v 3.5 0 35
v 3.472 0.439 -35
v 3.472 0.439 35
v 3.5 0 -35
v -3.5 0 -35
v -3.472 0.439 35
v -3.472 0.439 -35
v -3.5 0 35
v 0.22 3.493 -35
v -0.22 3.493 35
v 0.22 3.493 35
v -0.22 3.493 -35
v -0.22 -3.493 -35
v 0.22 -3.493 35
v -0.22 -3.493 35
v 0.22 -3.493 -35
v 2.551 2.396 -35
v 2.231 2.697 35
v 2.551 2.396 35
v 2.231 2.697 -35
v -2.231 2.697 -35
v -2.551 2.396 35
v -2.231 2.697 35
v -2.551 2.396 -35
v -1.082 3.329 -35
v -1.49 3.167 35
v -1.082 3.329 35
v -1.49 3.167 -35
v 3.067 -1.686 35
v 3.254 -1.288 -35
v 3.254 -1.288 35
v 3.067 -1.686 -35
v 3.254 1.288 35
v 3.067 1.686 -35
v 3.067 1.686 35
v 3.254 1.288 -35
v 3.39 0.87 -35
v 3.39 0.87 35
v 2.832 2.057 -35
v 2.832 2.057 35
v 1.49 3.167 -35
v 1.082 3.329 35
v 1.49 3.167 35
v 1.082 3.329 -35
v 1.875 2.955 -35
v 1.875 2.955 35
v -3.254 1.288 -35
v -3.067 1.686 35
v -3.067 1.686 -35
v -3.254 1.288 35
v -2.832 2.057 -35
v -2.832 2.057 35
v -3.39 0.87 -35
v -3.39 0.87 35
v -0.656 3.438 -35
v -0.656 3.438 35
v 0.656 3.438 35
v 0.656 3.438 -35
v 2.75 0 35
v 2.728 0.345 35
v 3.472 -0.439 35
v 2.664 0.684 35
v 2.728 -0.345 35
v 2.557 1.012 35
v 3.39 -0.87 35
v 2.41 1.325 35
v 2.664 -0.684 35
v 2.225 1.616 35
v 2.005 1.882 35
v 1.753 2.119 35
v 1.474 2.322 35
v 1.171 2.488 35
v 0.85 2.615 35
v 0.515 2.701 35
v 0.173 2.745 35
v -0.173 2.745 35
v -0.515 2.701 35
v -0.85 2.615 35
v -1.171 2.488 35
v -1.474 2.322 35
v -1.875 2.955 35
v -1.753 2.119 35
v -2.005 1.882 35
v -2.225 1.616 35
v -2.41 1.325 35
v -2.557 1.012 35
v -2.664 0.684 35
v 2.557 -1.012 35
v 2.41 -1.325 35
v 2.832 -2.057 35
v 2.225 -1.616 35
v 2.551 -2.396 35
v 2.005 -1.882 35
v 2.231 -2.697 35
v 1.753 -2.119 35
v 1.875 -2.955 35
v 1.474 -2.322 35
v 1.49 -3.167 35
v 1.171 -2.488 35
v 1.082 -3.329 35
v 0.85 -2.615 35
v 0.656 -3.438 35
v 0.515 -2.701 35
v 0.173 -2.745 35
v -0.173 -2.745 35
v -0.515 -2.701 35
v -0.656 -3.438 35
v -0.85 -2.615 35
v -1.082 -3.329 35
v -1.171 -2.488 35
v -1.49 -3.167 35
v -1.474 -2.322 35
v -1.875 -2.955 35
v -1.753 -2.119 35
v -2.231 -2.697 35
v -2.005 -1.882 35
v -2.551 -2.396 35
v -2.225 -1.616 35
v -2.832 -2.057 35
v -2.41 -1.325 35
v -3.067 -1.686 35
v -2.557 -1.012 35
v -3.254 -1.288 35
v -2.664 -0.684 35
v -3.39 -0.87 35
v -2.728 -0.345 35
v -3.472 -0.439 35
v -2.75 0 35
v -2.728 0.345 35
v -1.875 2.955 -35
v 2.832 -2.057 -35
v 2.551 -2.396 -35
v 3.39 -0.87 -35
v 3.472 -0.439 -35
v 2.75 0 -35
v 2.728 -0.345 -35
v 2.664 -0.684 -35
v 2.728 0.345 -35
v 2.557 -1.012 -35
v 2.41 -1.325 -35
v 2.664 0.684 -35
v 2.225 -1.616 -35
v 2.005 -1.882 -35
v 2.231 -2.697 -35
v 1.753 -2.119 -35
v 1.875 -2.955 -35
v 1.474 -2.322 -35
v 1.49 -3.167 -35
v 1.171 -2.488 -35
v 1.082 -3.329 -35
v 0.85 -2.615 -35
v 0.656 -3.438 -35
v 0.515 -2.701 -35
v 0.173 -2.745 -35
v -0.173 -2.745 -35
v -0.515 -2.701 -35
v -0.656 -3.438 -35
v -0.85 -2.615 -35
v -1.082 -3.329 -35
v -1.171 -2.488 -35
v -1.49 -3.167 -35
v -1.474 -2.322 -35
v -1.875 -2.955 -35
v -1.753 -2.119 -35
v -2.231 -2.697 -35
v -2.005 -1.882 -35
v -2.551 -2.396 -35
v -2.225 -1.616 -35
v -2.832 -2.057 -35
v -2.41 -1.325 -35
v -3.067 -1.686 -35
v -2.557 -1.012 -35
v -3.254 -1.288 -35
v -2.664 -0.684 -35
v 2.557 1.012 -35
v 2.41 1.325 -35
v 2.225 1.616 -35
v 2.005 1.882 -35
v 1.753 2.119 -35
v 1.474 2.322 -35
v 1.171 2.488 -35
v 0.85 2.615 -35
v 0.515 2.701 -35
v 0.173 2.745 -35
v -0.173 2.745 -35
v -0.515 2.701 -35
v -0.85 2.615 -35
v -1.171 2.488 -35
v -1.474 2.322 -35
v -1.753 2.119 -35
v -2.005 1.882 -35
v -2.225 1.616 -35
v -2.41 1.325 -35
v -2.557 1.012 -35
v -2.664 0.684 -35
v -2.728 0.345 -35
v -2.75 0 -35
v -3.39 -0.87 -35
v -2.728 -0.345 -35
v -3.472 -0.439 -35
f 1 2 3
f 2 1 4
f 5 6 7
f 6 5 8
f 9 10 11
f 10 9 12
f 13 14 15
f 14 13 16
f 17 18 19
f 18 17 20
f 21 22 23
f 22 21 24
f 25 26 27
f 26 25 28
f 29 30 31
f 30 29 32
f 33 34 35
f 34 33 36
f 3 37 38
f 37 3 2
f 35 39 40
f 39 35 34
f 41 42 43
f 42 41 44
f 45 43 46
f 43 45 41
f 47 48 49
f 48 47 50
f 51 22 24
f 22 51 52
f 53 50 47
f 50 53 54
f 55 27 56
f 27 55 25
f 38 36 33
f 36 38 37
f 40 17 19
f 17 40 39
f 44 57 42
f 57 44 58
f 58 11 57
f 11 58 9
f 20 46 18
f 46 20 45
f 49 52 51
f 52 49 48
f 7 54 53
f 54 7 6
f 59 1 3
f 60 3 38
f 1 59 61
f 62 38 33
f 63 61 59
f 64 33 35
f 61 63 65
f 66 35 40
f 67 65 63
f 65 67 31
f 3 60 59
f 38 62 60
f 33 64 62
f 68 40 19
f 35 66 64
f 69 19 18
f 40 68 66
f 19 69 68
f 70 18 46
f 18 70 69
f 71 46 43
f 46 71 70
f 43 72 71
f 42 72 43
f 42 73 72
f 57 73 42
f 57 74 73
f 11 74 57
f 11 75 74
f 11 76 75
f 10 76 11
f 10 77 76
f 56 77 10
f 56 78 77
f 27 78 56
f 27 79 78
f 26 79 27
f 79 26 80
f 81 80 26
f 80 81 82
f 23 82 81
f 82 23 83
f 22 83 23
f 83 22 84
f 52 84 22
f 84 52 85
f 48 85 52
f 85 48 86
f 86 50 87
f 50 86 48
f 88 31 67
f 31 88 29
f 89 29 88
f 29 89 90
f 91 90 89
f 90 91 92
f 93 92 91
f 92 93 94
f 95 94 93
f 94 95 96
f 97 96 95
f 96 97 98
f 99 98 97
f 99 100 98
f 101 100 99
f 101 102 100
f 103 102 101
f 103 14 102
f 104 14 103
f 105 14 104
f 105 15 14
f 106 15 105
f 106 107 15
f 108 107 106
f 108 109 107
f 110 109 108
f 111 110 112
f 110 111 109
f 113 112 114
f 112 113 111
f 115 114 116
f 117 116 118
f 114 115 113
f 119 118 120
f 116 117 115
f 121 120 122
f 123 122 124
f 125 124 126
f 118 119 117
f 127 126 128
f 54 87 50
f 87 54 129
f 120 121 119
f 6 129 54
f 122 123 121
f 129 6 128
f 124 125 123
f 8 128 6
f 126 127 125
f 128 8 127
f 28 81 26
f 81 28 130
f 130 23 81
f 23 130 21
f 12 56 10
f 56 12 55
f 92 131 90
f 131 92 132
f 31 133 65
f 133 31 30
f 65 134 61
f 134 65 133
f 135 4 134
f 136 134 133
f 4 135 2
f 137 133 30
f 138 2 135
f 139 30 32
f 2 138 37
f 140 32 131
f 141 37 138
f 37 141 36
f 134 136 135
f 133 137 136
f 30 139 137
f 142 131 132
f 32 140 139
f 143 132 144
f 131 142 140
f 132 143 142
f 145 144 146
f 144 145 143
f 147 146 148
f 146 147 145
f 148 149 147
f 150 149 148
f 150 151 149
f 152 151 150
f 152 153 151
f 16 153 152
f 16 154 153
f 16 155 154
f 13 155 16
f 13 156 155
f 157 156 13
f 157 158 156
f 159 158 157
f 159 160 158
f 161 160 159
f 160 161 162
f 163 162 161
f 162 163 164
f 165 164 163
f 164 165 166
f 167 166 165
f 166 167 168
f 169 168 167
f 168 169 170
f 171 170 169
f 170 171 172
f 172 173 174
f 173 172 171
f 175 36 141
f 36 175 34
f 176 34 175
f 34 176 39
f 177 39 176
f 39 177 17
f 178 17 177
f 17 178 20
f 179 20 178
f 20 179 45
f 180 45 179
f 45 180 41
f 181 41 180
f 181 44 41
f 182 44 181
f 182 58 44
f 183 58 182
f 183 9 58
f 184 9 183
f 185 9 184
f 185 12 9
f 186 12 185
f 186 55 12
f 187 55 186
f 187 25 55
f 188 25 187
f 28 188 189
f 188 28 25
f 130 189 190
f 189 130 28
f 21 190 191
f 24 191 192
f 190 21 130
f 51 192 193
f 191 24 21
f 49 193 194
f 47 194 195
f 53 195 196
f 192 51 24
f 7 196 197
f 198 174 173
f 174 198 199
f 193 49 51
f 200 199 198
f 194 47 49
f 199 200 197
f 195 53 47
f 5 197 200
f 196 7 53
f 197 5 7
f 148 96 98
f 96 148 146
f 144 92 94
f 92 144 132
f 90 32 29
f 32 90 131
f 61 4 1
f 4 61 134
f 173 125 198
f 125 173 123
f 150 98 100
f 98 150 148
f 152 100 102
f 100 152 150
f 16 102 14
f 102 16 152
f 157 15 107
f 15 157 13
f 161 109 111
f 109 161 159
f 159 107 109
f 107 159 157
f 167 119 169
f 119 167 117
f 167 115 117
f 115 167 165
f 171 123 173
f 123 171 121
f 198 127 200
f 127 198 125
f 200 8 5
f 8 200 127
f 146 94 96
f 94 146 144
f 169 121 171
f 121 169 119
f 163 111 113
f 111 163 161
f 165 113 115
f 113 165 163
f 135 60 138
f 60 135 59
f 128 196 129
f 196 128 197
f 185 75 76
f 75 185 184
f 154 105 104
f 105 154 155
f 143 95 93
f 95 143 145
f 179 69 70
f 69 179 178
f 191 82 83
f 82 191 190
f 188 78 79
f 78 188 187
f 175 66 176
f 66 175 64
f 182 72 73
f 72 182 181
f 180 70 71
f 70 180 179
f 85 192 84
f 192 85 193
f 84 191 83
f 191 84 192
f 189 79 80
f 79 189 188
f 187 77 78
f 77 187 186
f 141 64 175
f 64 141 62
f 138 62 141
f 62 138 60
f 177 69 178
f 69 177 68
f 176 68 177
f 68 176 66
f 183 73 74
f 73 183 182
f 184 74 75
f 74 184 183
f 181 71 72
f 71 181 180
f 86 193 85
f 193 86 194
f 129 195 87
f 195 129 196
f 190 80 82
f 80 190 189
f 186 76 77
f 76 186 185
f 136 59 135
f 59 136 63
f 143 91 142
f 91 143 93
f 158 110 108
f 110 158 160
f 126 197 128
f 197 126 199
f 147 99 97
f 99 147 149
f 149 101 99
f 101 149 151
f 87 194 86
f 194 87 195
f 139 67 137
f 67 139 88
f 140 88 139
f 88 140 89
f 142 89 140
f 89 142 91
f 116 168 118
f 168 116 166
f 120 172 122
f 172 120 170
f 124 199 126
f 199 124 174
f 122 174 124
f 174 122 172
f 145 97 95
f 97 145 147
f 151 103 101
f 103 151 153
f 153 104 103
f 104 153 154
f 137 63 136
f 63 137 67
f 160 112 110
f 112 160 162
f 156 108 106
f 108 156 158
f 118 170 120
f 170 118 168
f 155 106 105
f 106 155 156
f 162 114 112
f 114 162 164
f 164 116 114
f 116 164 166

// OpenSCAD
$fn = 50;


difference() {
	union() {
		translate(v = [0, 0, -35.0000000000]) {
			cylinder(h = 70, r = 3.5000000000);
		}
	}
	union() {
		translate(v = [0, 0, -100.0000000000]) {
			cylinder(h = 200, r = 2.7500000000);
		}
	}
}
